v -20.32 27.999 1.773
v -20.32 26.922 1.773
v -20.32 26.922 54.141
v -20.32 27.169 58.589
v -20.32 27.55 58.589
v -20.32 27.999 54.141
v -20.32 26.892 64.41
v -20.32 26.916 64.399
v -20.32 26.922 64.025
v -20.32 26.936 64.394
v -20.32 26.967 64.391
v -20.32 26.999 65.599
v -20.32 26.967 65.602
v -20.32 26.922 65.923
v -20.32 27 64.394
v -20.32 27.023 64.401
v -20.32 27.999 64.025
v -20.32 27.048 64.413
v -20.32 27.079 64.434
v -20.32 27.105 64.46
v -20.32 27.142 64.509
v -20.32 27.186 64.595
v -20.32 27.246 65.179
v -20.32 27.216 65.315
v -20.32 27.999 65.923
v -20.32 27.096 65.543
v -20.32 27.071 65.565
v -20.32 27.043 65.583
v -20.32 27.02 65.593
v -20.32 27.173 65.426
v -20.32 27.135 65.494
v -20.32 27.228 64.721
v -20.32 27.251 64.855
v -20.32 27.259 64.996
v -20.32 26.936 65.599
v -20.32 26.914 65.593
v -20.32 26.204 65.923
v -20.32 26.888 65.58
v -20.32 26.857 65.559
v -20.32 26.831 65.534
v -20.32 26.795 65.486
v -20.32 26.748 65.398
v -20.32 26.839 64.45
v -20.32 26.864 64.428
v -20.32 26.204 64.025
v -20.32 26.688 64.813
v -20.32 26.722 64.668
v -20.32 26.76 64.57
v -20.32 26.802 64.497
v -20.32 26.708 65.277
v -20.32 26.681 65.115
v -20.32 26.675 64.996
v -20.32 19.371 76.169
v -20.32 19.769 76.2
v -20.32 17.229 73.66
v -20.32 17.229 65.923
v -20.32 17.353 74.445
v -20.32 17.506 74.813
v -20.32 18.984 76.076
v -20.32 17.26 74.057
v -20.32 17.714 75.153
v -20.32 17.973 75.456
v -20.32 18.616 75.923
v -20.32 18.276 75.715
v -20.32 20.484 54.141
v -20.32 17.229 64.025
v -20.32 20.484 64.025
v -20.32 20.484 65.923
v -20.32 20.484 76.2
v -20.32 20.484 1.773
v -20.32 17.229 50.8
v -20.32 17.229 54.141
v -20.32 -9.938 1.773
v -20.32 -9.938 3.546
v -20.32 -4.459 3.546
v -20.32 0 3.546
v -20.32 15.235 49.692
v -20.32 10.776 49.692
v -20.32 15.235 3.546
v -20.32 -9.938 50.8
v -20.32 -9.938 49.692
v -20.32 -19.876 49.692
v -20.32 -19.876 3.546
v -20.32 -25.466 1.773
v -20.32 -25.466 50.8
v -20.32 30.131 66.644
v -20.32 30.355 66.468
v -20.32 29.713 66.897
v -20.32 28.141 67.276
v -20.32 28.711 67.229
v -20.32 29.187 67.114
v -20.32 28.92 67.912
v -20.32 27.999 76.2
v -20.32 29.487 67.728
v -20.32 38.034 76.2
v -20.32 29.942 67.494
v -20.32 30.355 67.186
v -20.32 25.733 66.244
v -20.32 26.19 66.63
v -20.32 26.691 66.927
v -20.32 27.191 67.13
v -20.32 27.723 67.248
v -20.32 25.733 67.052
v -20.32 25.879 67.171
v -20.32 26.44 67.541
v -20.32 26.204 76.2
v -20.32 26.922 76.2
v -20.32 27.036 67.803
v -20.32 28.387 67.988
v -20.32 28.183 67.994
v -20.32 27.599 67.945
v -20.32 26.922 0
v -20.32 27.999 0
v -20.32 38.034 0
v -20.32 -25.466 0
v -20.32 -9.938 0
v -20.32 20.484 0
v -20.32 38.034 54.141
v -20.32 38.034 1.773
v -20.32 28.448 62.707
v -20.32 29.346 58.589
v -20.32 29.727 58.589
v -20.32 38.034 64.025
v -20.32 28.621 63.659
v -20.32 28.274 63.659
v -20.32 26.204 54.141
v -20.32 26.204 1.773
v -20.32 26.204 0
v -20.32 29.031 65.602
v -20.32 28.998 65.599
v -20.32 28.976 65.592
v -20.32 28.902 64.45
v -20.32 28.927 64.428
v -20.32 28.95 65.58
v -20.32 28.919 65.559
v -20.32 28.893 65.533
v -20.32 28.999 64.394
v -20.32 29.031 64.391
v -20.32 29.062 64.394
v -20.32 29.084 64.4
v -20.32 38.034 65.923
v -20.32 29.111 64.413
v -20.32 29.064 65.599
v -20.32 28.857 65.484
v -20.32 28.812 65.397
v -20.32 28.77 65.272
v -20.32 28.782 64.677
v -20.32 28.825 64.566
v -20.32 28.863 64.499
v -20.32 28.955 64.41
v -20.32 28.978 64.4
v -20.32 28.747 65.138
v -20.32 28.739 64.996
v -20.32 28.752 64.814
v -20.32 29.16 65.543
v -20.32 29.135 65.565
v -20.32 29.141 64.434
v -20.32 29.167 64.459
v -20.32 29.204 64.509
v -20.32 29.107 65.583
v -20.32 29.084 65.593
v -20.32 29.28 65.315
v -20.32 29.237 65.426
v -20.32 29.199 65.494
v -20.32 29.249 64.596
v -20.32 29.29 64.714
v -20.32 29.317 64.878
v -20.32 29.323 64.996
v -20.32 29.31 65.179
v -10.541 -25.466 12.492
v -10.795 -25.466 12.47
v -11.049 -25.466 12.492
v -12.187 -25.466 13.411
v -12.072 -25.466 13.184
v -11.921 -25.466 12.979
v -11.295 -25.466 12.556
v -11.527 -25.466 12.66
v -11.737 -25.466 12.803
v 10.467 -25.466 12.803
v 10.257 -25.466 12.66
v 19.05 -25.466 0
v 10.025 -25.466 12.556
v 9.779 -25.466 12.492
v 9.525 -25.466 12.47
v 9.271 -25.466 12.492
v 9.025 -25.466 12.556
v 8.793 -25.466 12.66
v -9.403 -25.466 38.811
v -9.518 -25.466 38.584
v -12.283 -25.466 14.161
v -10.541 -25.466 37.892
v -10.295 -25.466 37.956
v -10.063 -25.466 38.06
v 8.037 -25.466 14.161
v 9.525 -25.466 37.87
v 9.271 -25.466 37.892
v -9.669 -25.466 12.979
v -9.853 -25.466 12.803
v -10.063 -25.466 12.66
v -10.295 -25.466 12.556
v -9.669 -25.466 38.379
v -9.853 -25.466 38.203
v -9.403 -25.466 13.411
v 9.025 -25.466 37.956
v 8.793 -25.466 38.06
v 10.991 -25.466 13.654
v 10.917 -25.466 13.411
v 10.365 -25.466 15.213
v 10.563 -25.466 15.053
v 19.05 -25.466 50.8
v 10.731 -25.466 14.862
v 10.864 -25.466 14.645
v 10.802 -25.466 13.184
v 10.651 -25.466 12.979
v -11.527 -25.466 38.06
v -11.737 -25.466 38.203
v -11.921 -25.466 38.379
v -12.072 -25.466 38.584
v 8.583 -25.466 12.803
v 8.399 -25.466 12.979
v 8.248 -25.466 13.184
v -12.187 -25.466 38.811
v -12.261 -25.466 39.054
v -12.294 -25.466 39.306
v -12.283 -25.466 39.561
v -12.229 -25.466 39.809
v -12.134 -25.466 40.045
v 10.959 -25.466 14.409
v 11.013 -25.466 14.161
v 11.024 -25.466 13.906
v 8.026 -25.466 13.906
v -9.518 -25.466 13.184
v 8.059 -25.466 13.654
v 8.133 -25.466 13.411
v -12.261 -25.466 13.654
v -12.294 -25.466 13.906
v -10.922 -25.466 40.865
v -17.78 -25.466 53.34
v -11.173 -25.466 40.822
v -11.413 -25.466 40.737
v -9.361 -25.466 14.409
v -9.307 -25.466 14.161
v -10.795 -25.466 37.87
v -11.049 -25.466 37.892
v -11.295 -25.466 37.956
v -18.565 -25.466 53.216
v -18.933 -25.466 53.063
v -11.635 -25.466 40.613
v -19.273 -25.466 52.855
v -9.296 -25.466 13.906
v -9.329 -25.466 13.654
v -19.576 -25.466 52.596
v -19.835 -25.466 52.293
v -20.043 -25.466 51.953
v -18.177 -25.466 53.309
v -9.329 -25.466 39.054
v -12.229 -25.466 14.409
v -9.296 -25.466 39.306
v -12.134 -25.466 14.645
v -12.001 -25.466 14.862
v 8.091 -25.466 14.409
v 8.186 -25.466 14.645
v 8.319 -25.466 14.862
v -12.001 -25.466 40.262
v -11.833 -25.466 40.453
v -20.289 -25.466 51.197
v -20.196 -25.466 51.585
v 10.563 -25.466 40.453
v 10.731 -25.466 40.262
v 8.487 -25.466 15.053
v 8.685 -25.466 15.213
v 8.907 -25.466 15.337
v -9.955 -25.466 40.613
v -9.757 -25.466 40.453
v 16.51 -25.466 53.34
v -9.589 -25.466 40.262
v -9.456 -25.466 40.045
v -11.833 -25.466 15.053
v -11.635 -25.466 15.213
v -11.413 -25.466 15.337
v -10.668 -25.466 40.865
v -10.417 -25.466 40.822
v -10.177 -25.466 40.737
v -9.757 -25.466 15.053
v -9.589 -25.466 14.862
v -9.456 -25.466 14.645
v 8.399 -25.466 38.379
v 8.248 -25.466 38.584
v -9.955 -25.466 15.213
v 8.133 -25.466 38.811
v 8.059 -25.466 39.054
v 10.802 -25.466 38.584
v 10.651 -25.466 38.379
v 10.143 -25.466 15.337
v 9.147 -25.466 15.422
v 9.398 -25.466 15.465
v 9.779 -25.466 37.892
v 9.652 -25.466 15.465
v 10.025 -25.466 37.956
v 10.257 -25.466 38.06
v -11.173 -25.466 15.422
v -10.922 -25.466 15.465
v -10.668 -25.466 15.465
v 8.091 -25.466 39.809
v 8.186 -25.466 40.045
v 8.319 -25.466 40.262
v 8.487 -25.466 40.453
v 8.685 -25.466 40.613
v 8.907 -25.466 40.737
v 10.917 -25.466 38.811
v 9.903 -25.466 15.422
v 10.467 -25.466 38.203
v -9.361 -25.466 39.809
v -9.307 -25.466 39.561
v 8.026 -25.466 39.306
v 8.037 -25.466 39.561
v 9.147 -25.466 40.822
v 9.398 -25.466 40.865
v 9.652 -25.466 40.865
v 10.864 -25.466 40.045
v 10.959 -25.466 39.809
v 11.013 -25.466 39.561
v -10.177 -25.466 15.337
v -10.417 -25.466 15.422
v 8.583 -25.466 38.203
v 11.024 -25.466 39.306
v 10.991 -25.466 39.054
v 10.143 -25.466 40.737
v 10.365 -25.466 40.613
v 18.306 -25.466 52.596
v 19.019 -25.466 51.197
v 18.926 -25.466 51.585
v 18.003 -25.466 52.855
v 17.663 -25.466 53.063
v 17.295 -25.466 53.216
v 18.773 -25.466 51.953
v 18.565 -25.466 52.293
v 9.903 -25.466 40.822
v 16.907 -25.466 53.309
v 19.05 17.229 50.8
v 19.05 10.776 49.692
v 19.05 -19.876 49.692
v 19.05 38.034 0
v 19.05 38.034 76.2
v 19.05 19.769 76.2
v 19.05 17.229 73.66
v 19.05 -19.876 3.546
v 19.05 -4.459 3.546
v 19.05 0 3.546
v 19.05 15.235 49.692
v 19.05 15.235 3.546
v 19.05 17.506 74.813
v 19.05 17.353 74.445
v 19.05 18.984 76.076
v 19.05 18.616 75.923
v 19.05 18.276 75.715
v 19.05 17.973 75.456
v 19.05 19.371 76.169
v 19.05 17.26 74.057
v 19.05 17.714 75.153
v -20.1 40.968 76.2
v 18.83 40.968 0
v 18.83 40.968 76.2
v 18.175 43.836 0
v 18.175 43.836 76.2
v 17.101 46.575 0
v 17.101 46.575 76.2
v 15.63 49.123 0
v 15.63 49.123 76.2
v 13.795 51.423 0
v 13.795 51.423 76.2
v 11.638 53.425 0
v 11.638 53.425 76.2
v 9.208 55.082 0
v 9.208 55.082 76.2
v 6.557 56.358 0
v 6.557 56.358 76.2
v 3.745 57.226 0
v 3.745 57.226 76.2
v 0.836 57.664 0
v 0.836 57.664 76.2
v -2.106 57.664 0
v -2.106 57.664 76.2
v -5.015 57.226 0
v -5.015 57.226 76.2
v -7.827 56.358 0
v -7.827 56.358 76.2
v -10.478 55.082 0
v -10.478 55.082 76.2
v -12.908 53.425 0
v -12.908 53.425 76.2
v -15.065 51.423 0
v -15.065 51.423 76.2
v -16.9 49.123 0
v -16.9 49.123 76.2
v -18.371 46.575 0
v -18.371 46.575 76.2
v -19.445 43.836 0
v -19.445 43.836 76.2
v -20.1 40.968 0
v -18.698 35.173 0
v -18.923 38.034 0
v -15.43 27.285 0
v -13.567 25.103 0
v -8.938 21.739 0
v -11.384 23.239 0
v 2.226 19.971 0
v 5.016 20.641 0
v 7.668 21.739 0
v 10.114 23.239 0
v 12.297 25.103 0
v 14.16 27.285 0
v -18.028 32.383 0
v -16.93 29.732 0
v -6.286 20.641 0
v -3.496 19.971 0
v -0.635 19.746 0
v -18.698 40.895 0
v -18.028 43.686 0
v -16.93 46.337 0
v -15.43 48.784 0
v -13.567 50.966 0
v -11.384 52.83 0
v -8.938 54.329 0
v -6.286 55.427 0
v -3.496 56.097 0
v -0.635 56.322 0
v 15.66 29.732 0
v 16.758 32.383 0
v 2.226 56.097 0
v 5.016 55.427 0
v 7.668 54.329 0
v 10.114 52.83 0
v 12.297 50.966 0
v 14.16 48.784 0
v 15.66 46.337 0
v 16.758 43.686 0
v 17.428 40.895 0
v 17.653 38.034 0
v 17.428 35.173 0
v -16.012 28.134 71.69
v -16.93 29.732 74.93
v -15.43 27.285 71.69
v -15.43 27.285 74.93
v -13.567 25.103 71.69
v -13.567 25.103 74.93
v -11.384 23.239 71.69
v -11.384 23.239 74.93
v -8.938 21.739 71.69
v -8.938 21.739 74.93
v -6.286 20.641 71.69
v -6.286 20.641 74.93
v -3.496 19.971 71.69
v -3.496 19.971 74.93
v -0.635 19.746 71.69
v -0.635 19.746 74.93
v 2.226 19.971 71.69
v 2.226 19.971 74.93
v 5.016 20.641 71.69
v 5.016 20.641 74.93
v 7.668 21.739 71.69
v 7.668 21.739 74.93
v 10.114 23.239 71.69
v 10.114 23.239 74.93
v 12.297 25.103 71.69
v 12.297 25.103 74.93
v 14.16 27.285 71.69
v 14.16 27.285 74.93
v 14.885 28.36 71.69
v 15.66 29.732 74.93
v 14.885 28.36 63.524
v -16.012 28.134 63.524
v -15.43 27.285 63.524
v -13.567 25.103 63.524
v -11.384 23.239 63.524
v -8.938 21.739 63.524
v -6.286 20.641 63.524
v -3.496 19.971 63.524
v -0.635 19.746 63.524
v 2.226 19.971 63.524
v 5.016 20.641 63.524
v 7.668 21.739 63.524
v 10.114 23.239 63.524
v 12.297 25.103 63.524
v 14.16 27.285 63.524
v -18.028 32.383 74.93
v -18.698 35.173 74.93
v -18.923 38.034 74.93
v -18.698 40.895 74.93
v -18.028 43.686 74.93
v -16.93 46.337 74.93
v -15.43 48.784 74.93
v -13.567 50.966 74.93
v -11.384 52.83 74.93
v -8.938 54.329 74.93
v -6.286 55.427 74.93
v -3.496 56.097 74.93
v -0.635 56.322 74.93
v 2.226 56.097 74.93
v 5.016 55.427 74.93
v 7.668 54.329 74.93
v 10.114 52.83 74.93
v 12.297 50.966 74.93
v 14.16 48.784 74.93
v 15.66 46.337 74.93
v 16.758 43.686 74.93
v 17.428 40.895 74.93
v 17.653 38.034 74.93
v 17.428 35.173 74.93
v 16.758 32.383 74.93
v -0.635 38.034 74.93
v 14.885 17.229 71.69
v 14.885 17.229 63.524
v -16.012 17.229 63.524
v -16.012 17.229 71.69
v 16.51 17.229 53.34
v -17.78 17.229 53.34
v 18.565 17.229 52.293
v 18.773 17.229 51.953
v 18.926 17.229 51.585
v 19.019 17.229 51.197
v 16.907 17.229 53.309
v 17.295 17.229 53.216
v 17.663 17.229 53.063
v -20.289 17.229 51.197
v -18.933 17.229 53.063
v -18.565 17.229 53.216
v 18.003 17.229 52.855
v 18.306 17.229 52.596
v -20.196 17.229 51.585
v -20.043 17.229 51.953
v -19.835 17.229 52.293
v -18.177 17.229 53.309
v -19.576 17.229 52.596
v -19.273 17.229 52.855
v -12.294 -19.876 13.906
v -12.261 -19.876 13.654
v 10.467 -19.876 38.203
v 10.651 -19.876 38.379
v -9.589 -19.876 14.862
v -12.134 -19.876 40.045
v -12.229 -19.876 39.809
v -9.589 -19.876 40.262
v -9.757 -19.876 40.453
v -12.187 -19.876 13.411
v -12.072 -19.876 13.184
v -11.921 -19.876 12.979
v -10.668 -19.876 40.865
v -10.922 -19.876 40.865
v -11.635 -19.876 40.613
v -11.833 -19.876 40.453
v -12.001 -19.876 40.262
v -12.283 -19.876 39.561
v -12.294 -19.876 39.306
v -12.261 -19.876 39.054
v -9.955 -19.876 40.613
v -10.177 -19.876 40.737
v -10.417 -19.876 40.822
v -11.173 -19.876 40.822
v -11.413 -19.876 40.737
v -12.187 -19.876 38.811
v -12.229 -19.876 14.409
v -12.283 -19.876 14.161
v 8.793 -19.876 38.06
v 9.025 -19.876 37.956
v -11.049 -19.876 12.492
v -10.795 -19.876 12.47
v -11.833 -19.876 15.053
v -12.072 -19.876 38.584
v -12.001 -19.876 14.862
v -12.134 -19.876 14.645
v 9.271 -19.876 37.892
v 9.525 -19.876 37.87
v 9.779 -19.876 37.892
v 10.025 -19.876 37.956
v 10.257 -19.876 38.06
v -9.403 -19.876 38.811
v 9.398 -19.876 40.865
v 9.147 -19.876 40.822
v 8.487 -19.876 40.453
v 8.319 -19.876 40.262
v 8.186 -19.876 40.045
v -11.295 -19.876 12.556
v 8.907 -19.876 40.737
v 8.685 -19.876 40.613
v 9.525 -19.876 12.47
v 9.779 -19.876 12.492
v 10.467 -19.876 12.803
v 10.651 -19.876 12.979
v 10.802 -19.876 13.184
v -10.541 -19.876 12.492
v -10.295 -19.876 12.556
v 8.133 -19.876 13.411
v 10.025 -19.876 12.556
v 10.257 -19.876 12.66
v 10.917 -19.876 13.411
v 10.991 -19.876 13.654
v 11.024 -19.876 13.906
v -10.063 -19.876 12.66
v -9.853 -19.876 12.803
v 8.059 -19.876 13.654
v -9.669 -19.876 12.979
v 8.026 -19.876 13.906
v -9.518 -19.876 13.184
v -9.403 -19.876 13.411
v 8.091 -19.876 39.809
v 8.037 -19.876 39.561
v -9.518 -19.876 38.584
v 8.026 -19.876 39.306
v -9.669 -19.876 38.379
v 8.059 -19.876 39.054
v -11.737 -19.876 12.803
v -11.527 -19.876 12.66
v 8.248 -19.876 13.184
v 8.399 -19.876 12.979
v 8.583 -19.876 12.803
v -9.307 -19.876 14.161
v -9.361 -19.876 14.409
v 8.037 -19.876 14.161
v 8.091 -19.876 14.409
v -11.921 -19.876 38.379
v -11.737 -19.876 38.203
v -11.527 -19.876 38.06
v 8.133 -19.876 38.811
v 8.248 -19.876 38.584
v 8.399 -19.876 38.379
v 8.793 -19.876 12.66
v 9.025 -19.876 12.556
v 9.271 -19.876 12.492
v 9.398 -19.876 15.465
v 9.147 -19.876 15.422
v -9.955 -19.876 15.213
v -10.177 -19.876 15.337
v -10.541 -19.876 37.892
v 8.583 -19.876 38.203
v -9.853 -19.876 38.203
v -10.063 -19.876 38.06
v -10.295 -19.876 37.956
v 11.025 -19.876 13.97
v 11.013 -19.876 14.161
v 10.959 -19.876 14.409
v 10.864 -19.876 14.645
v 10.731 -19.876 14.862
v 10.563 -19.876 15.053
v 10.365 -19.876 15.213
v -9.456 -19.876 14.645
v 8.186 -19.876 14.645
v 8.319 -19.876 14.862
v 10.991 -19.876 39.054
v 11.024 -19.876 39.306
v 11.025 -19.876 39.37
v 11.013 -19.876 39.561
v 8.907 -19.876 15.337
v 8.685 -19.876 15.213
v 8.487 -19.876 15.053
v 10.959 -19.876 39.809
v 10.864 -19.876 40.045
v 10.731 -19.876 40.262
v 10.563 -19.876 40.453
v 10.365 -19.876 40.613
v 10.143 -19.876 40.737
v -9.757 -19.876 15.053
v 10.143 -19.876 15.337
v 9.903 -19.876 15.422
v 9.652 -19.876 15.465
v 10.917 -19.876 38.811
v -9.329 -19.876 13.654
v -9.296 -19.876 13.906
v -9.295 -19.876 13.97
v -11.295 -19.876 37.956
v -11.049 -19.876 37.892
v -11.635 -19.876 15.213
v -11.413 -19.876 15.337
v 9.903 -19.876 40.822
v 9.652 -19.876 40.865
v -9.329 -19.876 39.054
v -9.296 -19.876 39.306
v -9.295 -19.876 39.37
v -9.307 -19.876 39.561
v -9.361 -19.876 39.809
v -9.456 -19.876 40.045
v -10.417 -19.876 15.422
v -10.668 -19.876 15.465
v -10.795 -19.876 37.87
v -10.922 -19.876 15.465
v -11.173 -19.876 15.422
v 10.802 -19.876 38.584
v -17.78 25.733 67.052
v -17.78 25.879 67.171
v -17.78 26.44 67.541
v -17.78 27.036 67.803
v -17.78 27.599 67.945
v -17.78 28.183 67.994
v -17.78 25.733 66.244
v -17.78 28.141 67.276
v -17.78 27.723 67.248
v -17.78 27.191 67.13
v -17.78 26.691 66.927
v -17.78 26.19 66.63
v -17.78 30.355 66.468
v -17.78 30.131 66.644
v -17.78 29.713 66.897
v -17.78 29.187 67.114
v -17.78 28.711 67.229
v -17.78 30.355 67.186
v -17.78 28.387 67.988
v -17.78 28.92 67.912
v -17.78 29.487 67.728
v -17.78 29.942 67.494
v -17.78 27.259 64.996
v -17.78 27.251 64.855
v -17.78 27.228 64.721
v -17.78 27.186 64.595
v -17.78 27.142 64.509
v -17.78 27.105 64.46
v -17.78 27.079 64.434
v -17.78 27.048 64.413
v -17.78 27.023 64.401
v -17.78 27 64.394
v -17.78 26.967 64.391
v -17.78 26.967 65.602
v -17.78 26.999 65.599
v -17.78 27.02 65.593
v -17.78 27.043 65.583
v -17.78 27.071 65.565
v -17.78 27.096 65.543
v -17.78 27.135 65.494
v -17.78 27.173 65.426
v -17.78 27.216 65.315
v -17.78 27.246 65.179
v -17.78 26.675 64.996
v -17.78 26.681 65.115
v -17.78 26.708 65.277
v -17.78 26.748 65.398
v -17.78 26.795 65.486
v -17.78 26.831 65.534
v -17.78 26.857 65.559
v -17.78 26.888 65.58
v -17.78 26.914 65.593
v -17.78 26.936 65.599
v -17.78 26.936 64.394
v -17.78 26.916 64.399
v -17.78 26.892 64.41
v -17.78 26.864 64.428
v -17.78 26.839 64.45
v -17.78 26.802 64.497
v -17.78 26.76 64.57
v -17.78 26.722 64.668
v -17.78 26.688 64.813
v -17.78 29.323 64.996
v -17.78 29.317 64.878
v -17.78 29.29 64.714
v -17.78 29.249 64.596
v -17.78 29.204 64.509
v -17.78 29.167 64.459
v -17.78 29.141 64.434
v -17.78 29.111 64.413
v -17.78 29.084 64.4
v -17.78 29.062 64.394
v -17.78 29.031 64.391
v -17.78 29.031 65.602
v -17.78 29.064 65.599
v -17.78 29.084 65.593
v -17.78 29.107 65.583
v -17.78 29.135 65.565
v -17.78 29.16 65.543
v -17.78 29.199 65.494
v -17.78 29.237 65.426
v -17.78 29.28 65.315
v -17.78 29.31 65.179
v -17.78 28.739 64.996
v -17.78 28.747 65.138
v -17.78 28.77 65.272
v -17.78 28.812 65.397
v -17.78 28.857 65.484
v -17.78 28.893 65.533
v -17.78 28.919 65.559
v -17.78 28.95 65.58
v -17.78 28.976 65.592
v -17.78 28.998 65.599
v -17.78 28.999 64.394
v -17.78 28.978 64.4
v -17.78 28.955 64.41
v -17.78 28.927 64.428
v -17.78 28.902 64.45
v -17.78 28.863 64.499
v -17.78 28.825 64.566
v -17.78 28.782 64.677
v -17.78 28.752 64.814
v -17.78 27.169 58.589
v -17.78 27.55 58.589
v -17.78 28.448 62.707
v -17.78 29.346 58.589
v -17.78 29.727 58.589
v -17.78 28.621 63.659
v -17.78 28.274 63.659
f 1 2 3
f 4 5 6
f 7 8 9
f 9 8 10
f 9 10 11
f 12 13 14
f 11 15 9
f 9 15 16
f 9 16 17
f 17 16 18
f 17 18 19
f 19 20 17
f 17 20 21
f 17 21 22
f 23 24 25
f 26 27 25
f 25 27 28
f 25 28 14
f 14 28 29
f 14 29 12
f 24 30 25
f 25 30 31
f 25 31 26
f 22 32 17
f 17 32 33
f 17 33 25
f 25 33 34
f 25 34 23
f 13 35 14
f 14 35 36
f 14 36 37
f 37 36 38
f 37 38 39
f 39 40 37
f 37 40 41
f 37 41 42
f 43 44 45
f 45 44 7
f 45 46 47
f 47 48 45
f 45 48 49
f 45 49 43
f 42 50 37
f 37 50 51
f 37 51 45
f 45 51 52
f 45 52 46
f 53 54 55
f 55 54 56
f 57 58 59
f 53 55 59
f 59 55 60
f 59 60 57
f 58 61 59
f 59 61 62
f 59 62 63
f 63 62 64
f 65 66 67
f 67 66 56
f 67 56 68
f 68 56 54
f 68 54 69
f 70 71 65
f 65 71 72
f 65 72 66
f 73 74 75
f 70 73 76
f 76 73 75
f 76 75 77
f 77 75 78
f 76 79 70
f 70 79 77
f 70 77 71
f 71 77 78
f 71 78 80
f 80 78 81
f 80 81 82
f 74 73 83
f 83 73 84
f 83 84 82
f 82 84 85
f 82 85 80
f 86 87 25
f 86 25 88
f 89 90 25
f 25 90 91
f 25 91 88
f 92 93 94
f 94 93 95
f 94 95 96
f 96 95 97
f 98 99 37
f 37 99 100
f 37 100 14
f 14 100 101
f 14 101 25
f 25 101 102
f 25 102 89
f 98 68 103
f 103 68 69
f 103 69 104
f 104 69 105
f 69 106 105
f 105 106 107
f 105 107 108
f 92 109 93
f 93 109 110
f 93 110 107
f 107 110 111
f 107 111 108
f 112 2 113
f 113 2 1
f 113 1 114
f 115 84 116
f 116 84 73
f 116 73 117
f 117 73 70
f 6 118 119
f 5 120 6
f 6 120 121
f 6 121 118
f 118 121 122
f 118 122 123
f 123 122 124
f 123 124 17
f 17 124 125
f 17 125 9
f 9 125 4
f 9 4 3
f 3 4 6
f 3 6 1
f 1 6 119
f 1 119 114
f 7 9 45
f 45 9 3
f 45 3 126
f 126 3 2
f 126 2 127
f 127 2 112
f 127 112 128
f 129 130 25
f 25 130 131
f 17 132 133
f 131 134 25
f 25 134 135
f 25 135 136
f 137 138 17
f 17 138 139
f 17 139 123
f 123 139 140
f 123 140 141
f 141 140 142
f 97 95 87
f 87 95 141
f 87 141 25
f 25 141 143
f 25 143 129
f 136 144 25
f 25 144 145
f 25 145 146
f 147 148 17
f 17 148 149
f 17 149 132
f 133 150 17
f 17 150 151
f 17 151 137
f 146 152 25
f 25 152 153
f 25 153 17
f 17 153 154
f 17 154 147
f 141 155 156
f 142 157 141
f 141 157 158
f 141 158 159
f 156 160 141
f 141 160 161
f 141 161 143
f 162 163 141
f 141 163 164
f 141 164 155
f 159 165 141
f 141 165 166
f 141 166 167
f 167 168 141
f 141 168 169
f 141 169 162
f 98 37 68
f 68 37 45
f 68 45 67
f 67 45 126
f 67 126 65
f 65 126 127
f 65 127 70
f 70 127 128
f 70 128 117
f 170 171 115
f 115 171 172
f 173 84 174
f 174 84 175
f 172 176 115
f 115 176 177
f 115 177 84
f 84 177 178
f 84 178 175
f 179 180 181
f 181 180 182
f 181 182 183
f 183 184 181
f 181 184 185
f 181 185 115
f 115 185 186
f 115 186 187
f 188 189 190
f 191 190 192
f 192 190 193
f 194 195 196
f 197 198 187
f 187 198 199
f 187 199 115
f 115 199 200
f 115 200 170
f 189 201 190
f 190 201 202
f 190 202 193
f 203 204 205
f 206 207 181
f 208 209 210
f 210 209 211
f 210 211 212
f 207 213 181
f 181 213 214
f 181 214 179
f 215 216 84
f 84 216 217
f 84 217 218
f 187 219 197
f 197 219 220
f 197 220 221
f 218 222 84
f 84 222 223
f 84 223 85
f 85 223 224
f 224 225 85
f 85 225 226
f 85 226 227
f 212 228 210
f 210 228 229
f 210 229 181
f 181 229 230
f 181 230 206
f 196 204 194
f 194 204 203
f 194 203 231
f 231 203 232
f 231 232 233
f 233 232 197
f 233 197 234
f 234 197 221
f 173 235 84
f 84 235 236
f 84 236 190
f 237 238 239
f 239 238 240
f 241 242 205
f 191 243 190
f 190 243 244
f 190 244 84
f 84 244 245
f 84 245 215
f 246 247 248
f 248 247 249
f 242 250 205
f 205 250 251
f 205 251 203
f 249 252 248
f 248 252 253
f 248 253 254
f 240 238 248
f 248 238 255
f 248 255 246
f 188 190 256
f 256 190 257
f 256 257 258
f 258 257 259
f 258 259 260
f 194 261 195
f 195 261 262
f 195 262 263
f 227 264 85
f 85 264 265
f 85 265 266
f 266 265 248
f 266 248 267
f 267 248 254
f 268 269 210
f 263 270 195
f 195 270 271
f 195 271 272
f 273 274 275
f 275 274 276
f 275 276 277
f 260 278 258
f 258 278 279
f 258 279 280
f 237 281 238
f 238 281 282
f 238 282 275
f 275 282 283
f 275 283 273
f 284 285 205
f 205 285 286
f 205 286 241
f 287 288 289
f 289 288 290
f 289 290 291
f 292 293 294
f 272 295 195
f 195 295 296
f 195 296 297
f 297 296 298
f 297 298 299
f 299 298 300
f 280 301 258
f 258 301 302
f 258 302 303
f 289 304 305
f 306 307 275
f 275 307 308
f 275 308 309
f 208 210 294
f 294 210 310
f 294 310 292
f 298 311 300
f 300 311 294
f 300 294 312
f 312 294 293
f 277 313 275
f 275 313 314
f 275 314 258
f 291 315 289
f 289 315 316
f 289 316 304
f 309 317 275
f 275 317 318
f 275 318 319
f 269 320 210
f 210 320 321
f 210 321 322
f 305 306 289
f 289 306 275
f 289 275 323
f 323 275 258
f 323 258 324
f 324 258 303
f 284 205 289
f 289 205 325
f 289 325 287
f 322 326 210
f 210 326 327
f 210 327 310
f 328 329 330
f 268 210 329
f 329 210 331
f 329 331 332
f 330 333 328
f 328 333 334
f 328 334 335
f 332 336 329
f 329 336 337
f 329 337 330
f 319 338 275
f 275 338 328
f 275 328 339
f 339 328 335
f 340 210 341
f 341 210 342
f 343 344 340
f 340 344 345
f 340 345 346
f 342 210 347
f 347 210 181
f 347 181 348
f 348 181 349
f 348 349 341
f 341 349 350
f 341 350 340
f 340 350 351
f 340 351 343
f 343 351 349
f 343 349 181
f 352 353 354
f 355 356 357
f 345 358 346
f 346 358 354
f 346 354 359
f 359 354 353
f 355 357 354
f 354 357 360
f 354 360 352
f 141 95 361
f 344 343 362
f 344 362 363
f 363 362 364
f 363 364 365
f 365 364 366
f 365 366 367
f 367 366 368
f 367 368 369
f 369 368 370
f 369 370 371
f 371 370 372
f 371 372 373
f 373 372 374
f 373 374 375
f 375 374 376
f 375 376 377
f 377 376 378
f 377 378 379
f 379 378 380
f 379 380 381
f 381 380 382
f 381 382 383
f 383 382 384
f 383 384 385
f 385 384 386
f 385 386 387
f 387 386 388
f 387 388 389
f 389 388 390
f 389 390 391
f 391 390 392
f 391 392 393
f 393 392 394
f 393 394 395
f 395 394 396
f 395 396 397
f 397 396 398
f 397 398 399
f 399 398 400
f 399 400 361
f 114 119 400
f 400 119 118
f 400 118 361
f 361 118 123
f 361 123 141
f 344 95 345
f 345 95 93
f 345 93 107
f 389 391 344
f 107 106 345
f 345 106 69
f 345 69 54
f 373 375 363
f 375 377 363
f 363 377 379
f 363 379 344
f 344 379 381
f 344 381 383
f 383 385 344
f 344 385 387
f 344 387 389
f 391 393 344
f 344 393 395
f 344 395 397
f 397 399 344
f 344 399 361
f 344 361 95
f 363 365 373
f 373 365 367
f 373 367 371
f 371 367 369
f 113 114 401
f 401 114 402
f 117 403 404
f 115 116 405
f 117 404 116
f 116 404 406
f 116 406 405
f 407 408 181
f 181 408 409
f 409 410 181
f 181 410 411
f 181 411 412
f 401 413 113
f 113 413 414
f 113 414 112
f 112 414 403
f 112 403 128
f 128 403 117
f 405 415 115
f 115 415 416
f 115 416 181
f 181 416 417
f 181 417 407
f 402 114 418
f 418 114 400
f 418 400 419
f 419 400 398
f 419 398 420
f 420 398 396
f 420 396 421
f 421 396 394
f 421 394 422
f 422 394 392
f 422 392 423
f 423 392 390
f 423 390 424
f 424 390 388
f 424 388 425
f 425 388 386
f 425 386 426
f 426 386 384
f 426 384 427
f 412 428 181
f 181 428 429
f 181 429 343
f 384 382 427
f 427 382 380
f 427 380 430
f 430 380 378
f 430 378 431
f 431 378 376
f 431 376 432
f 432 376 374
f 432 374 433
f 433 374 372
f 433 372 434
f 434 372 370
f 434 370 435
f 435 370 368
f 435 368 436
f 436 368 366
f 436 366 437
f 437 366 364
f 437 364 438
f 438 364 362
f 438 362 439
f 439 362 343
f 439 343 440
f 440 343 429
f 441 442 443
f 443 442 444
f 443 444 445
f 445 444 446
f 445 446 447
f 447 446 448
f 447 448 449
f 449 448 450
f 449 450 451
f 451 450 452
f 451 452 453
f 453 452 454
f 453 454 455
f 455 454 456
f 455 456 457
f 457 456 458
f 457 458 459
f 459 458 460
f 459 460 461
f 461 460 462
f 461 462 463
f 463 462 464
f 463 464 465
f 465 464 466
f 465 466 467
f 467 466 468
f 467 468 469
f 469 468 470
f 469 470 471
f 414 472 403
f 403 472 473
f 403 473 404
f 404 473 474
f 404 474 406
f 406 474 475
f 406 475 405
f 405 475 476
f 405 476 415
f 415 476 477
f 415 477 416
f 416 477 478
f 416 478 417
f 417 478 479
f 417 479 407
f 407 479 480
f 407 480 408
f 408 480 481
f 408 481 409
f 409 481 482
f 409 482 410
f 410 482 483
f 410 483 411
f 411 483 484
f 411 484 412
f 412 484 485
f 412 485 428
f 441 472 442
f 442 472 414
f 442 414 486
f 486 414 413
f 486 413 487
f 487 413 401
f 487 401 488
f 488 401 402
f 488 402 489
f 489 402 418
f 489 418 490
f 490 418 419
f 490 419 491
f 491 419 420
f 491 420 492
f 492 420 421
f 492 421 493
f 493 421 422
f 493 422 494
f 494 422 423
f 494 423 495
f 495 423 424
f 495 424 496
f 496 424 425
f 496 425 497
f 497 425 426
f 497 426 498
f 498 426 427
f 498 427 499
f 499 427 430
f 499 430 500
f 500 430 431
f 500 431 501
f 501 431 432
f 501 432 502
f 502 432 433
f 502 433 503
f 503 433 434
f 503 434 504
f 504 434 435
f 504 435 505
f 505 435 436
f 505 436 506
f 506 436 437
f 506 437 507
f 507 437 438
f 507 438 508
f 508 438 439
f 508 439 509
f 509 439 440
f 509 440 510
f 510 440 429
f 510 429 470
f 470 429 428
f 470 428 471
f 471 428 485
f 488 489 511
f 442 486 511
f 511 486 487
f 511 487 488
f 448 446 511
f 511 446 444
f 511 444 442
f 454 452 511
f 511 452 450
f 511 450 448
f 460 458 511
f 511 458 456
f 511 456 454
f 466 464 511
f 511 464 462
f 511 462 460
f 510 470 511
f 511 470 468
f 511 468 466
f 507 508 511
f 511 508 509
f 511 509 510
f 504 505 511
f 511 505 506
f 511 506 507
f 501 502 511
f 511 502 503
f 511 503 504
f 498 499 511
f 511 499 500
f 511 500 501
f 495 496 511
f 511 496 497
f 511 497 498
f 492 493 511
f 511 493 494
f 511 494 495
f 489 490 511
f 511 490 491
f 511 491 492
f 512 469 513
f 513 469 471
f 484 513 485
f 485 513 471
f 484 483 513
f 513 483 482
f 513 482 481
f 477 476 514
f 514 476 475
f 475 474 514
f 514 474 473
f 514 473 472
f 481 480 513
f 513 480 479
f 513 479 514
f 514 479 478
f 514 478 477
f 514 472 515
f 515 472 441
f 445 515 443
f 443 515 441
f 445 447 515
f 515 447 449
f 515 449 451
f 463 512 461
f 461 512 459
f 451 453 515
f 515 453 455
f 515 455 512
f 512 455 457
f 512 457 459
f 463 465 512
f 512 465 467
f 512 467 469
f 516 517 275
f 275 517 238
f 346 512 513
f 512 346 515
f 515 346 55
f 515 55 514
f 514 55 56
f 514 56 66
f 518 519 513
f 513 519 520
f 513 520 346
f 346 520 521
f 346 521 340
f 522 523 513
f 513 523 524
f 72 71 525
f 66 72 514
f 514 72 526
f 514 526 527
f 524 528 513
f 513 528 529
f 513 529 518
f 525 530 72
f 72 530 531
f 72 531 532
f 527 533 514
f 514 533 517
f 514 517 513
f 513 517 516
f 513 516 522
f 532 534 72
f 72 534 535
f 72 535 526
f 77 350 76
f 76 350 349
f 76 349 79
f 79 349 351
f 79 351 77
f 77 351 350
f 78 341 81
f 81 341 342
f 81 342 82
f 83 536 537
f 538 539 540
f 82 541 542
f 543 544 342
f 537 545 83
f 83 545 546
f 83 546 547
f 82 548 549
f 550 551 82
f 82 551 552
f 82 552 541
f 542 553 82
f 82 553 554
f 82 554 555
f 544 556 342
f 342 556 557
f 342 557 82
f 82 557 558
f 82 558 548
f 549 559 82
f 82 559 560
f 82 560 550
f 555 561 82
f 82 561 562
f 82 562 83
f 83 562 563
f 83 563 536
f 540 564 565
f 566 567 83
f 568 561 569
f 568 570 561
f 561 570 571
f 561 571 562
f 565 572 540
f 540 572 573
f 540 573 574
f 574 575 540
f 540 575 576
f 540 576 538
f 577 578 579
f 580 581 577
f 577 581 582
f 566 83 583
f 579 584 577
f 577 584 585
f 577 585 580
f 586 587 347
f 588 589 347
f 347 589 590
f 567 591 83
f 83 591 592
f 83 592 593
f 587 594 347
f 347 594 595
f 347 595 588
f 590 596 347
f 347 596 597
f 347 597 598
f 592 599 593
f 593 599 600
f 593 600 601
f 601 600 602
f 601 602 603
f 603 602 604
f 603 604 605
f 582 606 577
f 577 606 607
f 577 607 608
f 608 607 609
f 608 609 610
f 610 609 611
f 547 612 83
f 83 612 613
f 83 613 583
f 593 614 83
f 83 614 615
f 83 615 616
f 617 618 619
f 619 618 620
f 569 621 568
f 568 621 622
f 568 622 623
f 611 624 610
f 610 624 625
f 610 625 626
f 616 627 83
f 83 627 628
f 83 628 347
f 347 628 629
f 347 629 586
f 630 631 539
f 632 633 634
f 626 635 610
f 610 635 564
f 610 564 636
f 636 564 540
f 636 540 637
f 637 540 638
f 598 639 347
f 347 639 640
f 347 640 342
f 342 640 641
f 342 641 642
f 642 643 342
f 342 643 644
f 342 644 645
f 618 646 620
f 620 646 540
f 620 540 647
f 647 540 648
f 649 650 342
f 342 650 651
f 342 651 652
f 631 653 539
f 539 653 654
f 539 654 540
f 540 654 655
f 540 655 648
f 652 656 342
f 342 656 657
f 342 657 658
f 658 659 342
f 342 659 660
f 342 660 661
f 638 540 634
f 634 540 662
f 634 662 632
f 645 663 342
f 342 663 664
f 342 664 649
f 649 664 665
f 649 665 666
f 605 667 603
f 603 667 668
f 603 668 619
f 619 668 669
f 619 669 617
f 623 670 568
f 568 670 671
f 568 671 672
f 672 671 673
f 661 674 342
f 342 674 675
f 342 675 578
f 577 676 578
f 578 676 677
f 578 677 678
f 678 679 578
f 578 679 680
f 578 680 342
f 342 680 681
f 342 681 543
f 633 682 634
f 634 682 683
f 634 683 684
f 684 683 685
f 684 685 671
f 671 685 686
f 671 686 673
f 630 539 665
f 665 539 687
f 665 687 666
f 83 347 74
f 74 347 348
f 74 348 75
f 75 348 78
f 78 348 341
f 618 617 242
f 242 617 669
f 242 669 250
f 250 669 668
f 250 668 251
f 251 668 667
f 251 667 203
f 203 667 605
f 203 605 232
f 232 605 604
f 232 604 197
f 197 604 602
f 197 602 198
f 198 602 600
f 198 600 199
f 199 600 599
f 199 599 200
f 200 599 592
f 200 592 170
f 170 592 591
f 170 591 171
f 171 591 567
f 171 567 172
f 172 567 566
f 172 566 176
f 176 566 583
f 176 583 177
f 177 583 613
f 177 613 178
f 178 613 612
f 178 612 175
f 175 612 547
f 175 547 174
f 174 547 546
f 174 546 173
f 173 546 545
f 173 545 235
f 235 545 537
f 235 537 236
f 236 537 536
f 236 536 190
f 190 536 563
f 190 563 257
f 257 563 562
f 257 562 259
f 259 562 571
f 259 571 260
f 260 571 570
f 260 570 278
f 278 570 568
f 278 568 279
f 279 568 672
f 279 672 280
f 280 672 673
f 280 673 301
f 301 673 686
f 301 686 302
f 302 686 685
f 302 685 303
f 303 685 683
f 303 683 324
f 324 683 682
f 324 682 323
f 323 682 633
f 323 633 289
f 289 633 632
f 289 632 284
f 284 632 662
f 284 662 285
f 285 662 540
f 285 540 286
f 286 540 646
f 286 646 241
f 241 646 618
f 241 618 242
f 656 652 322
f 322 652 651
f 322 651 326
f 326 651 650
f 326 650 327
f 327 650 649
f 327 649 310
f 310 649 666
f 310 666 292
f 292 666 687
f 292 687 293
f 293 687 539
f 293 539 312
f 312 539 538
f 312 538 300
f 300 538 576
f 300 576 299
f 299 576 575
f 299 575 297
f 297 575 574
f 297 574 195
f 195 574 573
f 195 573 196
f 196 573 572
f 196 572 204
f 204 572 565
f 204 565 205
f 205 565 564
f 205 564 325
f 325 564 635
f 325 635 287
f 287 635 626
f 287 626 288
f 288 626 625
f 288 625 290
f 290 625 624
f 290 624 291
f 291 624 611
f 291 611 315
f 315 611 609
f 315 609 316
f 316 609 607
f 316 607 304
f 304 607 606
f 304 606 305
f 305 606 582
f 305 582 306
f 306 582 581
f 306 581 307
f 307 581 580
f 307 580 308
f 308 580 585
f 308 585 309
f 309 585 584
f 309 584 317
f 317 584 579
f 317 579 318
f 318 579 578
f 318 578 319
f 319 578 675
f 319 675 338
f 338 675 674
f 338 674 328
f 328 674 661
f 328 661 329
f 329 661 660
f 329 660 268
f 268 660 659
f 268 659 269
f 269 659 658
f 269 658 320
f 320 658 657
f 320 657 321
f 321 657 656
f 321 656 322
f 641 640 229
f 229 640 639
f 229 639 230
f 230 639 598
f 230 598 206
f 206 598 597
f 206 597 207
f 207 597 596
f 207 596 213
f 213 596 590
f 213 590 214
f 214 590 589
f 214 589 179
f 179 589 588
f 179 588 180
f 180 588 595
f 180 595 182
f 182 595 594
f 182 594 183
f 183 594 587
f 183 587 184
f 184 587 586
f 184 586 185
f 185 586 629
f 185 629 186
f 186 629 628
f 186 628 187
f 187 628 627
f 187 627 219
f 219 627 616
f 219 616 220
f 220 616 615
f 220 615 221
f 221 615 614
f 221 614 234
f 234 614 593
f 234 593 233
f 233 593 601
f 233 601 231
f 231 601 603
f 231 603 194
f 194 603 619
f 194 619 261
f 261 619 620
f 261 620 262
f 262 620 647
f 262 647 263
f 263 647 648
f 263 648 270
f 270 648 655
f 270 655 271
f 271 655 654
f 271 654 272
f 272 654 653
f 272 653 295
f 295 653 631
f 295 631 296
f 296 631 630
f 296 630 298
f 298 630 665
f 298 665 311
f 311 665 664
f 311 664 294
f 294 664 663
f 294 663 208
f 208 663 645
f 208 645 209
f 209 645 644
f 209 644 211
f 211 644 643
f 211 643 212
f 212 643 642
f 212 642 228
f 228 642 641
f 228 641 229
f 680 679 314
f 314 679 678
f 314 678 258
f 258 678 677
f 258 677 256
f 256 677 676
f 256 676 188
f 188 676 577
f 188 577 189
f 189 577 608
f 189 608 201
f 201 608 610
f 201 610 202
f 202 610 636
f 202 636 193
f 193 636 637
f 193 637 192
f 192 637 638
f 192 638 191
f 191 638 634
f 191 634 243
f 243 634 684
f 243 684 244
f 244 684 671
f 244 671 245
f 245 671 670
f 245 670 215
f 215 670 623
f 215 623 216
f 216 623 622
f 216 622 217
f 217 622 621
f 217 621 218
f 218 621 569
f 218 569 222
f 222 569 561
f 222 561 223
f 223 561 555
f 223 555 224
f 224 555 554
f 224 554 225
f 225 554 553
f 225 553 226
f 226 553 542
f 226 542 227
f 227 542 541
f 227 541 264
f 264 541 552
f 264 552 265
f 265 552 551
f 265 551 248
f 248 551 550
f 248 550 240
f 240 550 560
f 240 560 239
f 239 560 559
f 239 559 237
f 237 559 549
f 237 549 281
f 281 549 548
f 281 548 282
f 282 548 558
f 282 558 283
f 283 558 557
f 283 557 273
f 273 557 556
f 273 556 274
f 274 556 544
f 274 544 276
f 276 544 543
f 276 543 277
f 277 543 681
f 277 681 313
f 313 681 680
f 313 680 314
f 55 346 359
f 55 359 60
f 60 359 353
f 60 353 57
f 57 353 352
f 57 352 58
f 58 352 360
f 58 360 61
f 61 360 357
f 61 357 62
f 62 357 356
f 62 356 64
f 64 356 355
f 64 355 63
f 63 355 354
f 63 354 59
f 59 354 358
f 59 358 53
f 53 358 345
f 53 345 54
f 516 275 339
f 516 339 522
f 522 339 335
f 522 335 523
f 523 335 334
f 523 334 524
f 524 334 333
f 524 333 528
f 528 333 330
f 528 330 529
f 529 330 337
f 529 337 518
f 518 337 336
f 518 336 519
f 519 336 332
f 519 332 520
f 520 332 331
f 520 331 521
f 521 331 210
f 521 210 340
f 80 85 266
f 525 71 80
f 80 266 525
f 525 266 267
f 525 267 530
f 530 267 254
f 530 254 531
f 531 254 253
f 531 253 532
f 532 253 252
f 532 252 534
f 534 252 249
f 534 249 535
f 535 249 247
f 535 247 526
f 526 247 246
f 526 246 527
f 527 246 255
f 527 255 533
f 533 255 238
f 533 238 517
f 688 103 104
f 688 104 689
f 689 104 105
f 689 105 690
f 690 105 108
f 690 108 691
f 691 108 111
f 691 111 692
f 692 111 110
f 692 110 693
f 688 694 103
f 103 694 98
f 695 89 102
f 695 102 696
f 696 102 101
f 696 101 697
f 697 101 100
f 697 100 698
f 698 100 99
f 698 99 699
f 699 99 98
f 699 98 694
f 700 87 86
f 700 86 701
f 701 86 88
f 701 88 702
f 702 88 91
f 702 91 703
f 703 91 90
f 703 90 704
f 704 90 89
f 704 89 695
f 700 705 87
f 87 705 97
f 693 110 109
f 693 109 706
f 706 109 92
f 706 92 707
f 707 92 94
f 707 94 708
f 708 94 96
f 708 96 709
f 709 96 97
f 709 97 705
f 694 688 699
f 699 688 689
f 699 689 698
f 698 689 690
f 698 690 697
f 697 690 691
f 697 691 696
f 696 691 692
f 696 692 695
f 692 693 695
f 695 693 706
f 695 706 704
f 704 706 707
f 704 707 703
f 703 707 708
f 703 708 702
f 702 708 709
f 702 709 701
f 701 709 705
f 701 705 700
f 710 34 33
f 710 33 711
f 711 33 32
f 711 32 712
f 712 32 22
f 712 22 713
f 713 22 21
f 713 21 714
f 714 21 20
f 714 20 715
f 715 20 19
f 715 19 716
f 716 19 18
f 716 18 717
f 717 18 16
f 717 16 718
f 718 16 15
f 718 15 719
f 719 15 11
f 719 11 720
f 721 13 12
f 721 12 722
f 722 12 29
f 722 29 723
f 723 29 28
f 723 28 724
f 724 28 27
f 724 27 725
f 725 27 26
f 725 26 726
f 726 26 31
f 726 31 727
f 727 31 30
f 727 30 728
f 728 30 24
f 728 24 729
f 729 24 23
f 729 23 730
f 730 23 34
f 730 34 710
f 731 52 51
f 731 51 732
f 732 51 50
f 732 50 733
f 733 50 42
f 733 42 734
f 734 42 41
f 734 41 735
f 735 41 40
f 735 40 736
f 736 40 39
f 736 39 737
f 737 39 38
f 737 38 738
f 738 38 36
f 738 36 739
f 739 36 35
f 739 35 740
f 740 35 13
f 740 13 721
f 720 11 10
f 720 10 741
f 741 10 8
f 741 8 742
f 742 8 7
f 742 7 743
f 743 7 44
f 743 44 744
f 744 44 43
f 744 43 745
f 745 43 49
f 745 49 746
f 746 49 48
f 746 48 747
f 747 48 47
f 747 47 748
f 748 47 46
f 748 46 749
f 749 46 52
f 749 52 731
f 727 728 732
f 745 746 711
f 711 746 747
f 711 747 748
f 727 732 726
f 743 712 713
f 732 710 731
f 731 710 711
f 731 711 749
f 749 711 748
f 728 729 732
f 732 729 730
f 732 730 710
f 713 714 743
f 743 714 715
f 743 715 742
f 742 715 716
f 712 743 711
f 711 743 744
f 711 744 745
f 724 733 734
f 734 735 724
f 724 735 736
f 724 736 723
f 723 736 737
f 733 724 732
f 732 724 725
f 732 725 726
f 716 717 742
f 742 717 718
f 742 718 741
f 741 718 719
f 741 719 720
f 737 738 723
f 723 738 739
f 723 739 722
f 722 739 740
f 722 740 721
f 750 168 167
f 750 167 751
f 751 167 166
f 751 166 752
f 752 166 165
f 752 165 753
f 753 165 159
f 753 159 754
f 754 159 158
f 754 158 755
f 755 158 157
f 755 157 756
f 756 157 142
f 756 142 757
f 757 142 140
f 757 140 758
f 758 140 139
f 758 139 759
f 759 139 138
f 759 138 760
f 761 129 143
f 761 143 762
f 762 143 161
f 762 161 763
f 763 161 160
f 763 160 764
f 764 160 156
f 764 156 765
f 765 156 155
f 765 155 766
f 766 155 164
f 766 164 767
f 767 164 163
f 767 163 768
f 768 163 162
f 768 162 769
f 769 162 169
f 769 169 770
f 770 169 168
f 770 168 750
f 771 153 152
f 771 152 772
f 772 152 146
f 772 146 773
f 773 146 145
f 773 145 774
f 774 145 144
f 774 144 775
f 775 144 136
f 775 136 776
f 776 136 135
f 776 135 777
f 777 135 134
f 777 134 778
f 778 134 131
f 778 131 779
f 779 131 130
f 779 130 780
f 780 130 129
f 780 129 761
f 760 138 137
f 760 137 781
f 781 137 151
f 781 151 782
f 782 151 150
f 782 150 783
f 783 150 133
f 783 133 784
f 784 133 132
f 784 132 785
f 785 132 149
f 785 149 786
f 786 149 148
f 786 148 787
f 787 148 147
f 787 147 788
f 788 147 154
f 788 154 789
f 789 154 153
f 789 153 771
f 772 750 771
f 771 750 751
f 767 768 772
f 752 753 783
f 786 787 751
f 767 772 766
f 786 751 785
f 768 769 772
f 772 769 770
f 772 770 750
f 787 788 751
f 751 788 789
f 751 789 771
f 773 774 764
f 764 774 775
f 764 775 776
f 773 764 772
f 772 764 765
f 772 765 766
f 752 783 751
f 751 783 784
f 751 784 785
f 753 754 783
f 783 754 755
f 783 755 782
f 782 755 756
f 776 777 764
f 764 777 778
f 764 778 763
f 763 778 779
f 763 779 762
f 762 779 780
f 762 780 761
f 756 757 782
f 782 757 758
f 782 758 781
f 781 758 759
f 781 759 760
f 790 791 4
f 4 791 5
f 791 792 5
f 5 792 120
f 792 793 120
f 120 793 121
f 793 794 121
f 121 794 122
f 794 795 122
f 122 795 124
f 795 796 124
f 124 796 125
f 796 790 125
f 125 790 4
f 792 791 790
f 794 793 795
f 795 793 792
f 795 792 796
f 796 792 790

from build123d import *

# Parameters (mm, degrees)
BOSS_EXTRUDE1_DEPTH = 76.2
SKETCH2_R           = 18.288
CUT_EXTRUDE1_DEPTH  = 74.93
SKETCH3_W           = 30.896743612
SKETCH3_H           = 8.166199328
CUT_EXTRUDE2_DEPTH  = 55.372
SKETCH5_W           = 22.86
SKETCH5_H           = 42.694539366
CUT_EXTRUDE4_DEPTH  = 55.372
CUT_EXTRUDE5_DEPTH  = 55.372
SKETCH7_R           = 1.5
CUT_EXTRUDE6_DEPTH  = 7.62
FILLET1_R           = 2.54
FILLET2_R           = 2.54
CUT_EXTRUDE7_DEPTH  = 2.54


with BuildPart() as part:
    # Sketch1 → Boss-Extrude1 (new body)
    with BuildSketch(Plane.XY):
        with BuildLine():
            Line((19.05, 38.034196891), (19.05, -25.465803109))
            Line((19.05, -25.465803109), (-20.32, -25.465803109))
            Line((-20.32, -25.465803109), (-20.32, 38.034196891))
            ThreePointArc((-20.32, 38.034196891), (-0.635, 57.719196891), (19.05, 38.034196891))
        make_face()
    extrude(amount=BOSS_EXTRUDE1_DEPTH)

    # Sketch2 → Cut-Extrude1 (cut)
    with BuildSketch(Plane(origin=(0, 0, 0), x_dir=(-1, 0, 0), z_dir=(0, 0, -1))):
        with Locations((0.635, 38.034196891)):
            Circle(SKETCH2_R)
    extrude(amount=-CUT_EXTRUDE1_DEPTH, mode=Mode.SUBTRACT)

    # Sketch3 → Cut-Extrude2 (cut)
    with BuildSketch(Plane.XZ.offset(25.465803109)):
        with Locations((-0.563393949, 67.607273916)):
            Rectangle(SKETCH3_W, SKETCH3_H)
    extrude(amount=-CUT_EXTRUDE2_DEPTH, mode=Mode.SUBTRACT)

    # Sketch5 → Cut-Extrude4 (cut)
    with BuildSketch(Plane.ZY.offset(20.32)):
        with Locations((64.77, -4.118533426)):
            Rectangle(SKETCH5_W, SKETCH5_H)
    extrude(amount=-CUT_EXTRUDE4_DEPTH, mode=Mode.SUBTRACT)

    # Sketch6 → Cut-Extrude5 (cut)
    with BuildSketch(Plane.ZY.offset(20.32)):
        Polygon((49.692334338, 15.234978865), (3.545926494, 15.234978865), (3.545926494, 0), align=None)
        Polygon((49.692334338, 10.776388735), (3.545926494, -4.45859013), (3.545926494, -19.876418407), (49.692334338, -19.876418407), align=None)
    extrude(amount=-CUT_EXTRUDE5_DEPTH, mode=Mode.SUBTRACT)

    # Sketch7 → Cut-Extrude6 (cut)
    with BuildSketch(Plane(origin=(0, -25.465803109, 0), x_dir=(-1, 0, 0), z_dir=(0, -1, 0))):
        with Locations((10.795, -13.97)):
            Circle(SKETCH7_R)
        with Locations((10.795, -39.37)):
            Circle(SKETCH7_R)
        with Locations((-9.525, -13.97)):
            Circle(SKETCH7_R)
        with Locations((-9.525, -39.37)):
            Circle(SKETCH7_R)
    extrude(amount=-CUT_EXTRUDE6_DEPTH, mode=Mode.SUBTRACT)

    # Fillet1
    fillet1_edges = [part.edges().sort_by_distance(p)[0] for p in [
        (-0.635, 17.228736257, 76.2),
    ]]
    fillet(fillet1_edges, radius=FILLET1_R)

    # Fillet2
    fillet2_edges = [part.edges().sort_by_distance(p)[0] for p in [
        (19.05, -4.118533426, 53.34),
        (-20.32, -4.118533426, 53.34),
    ]]
    fillet(fillet2_edges, radius=FILLET2_R)

    # Sketch8 → Cut-Extrude7 (cut)
    with BuildSketch(Plane.ZY.offset(20.32)):
        Polygon((58.58873891, 27.55033505), (62.707128333, 28.447770947), (58.58873891, 29.345907966), (58.58873891, 29.726617101), (63.65925173, 28.62094803), (63.65925173, 28.273892742), (58.58873891, 27.168924793), align=None)
        with BuildLine():
            add(Edge.make_bspline(
                [(64.996431217, 29.322770947), (65.036672351, 29.321620871), (65.114658498, 29.319392057), (65.227191282, 29.304382374), (65.330482027, 29.277639856), (65.409194262, 29.246710575), (65.46543075, 29.217287823), (65.501792779, 29.194596329), (65.532480318, 29.170293168), (65.558238335, 29.145481874), (65.577165676, 29.118219683), (65.591788765, 29.090652513), (65.600610557, 29.061314813), (65.601668573, 29.041210781), (65.602200448, 29.03110428)],
                knots=[0, 0, 0, 0, 1.990507798, 3.857546318, 5.601569732, 7.256660921, 8.027130436, 8.73909373, 9.372800607, 9.961351037, 10.500235976, 11.006911429, 11.500764338, 12, 12, 12, 12], degree=3))
            add(Edge.make_bspline(
                [(65.602200448, 29.03110428), (65.601668573, 29.02099778), (65.600610557, 29.000893748), (65.591788765, 28.971556048), (65.577165676, 28.943988878), (65.558238335, 28.916726687), (65.532480318, 28.891915393), (65.501792779, 28.867612232), (65.46543075, 28.844920738), (65.409194262, 28.815497986), (65.330482027, 28.784568705), (65.227191282, 28.757826187), (65.114658498, 28.742816503), (65.036672351, 28.74058769), (64.996431217, 28.739437614)],
                knots=[0, 0, 0, 0, 0.499235662, 0.993088571, 1.499764024, 2.038648963, 2.627199393, 3.26090627, 3.972869564, 4.743339079, 6.398430268, 8.142453682, 10.009492202, 12, 12, 12, 12], degree=3))
            add(Edge.make_bspline(
                [(64.996431217, 28.739437614), (64.956190084, 28.74058769), (64.878203937, 28.742816503), (64.765671153, 28.757826187), (64.662380408, 28.784568705), (64.583668173, 28.815497986), (64.527431685, 28.844920738), (64.491069656, 28.867612232), (64.460382117, 28.891915393), (64.4346241, 28.916726687), (64.415696759, 28.943988878), (64.401073669, 28.971556048), (64.392251878, 29.000893748), (64.391193862, 29.02099778), (64.390661987, 29.03110428)],
                knots=[0, 0, 0, 0, 1.990507798, 3.857546318, 5.601569732, 7.256660921, 8.027130436, 8.73909373, 9.372800607, 9.961351037, 10.500235976, 11.006911429, 11.500764338, 12, 12, 12, 12], degree=3))
            add(Edge.make_bspline(
                [(64.390661987, 29.03110428), (64.391186666, 29.040981967), (64.392230692, 29.060636942), (64.401235197, 29.089432768), (64.415680324, 29.116822155), (64.434629148, 29.144078002), (64.460380267, 29.168892275), (64.491071648, 29.193190012), (64.52742486, 29.215902902), (64.583786055, 29.245244148), (64.662185902, 29.277227081), (64.765764853, 29.303386129), (64.878127586, 29.319664025), (64.956175178, 29.321713732), (64.996431217, 29.322770947)],
                knots=[0, 0, 0, 0, 0.488404753, 0.971845354, 1.47922561, 2.018860156, 2.608229279, 3.242817664, 3.955771323, 4.727312586, 6.389026247, 8.135475657, 10.006723338, 12, 12, 12, 12], degree=3))
        make_face()
        with BuildLine():
            add(Edge.make_bspline(
                [(64.996431217, 27.258668383), (65.036672351, 27.257518307), (65.114658498, 27.255289493), (65.227191282, 27.24027981), (65.330482027, 27.213537292), (65.409194262, 27.182608011), (65.46543075, 27.153185259), (65.501792779, 27.130493765), (65.532480318, 27.106190604), (65.558238335, 27.08137931), (65.577165676, 27.054117119), (65.591788765, 27.026549949), (65.600610557, 26.997212248), (65.601668573, 26.977108216), (65.602200448, 26.967001716)],
                knots=[0, 0, 0, 0, 1.990507798, 3.857546318, 5.601569732, 7.256660921, 8.027130436, 8.73909373, 9.372800607, 9.961351037, 10.500235976, 11.006911429, 11.500764338, 12, 12, 12, 12], degree=3))
            add(Edge.make_bspline(
                [(65.602200448, 26.967001716), (65.601675763, 26.957124042), (65.600631725, 26.937469089), (65.59162731, 26.908673091), (65.577181819, 26.881284401), (65.558234499, 26.854025675), (65.532477027, 26.829223563), (65.501812643, 26.804874143), (65.465247899, 26.782328727), (65.409537026, 26.751692384), (65.330402294, 26.721274107), (65.227153238, 26.694597501), (65.114719446, 26.678475837), (65.036682016, 26.676403788), (64.996431217, 26.67533505)],
                knots=[0, 0, 0, 0, 0.48835869, 0.971753697, 1.4790861, 2.018669752, 2.607983289, 3.242511825, 3.955398243, 4.732318271, 6.389555434, 8.135840131, 10.00691133, 12, 12, 12, 12], degree=3))
            add(Edge.make_bspline(
                [(64.996431217, 26.67533505), (64.956180419, 26.676403788), (64.878142989, 26.678475837), (64.765709197, 26.694597501), (64.662460141, 26.721274107), (64.583325409, 26.751692384), (64.527614536, 26.782328727), (64.491049792, 26.804874143), (64.460385408, 26.829223563), (64.434627936, 26.854025675), (64.415680616, 26.881284401), (64.401235125, 26.908673091), (64.39223071, 26.937469089), (64.391186672, 26.957124042), (64.390661987, 26.967001716)],
                knots=[0, 0, 0, 0, 1.99308867, 3.864159869, 5.610444566, 7.267681729, 8.044601757, 8.757488175, 9.392016711, 9.981330248, 10.5209139, 11.028246303, 11.51164131, 12, 12, 12, 12], degree=3))
            add(Edge.make_bspline(
                [(64.390661987, 26.967001716), (64.391193862, 26.977108216), (64.392251878, 26.997212248), (64.401073669, 27.026549949), (64.415696759, 27.054117119), (64.4346241, 27.08137931), (64.460382117, 27.106190604), (64.491069656, 27.130493765), (64.527431685, 27.153185259), (64.583668173, 27.182608011), (64.662380408, 27.213537292), (64.765671153, 27.24027981), (64.878203937, 27.255289493), (64.956190084, 27.257518307), (64.996431217, 27.258668383)],
                knots=[0, 0, 0, 0, 0.499235662, 0.993088571, 1.499764024, 2.038648963, 2.627199393, 3.26090627, 3.972869564, 4.743339079, 6.398430268, 8.142453682, 10.009492202, 12, 12, 12, 12], degree=3))
        make_face()
        with BuildLine():
            Line((67.051559423, 25.733027357), (66.243867115, 25.733027357))
            add(Edge.make_bspline(
                [(66.243867115, 25.733027357), (66.28260692, 25.772843106), (66.360174226, 25.852564736), (66.468966307, 25.97888666), (66.572347001, 26.109648304), (66.67019798, 26.244993717), (66.76091061, 26.385954161), (66.846362199, 26.531412433), (66.924350458, 26.682284456), (66.997421295, 26.836864373), (67.0632652, 26.994582281), (67.120200869, 27.154651777), (67.167701253, 27.316032688), (67.207224728, 27.478605836), (67.238213655, 27.642389926), (67.259589839, 27.807443651), (67.273735474, 27.973564747), (67.275188403, 28.084794525), (67.275918397, 28.140679601)],
                knots=[0, 0, 0, 0, 0.992342649, 1.98693169, 2.976855543, 3.969988518, 4.969517551, 5.970693636, 6.982945216, 8.002815687, 9.02486352, 10.035184142, 11.036656235, 12.029148216, 13.02335152, 14.013108037, 15.001727688, 16, 16, 16, 16], degree=3))
            add(Edge.make_bspline(
                [(67.275918397, 28.140679601), (67.275184901, 28.192343133), (67.27372325, 28.295294032), (67.263801037, 28.44878426), (67.246973124, 28.600860245), (67.222920671, 28.751444462), (67.193020341, 28.901036666), (67.155654129, 29.048791927), (67.112174699, 29.195317294), (67.061617766, 29.339705541), (67.006070574, 29.481699791), (66.944044099, 29.619275823), (66.87721261, 29.752732906), (66.806301921, 29.882246985), (66.729139051, 30.006769884), (66.648009526, 30.127575587), (66.561360678, 30.244023811), (66.499211501, 30.317960149), (66.468226089, 30.354822229)],
                knots=[0, 0, 0, 0, 1.030615892, 2.053727828, 3.066966151, 4.081801417, 5.094889563, 6.109178507, 7.121085909, 8.142879786, 9.160153843, 10.161827701, 11.152208124, 12.13713053, 13.106268419, 14.073498001, 15.03951329, 16, 16, 16, 16], degree=3))
            Line((66.468226089, 30.354822229), (67.186174807, 30.354822229))
            add(Edge.make_bspline(
                [(67.186174807, 30.354822229), (67.216874753, 30.319332363), (67.278313081, 30.248308195), (67.365007427, 30.136608354), (67.444835657, 30.019171184), (67.522194874, 29.898457723), (67.593126071, 29.772205249), (67.660248359, 29.641773165), (67.720879773, 29.505913751), (67.777568925, 29.366424056), (67.828739811, 29.223868209), (67.873051444, 29.079290549), (67.909800157, 28.933390224), (67.941592089, 28.786255648), (67.963633891, 28.637172897), (67.98205547, 28.48695015), (67.991590785, 28.33524909), (67.993106473, 28.233705926), (67.993867115, 28.182746909)],
                knots=[0, 0, 0, 0, 0.951172047, 1.903534998, 2.864157892, 3.828872604, 4.809039982, 5.798517374, 6.801478967, 7.823757442, 8.850242752, 9.870807247, 10.887714424, 11.899576751, 12.920723883, 13.941464303, 14.966932353, 16, 16, 16, 16], degree=3))
            add(Edge.make_bspline(
                [(67.993867115, 28.182746909), (67.993320557, 28.127802038), (67.992230776, 28.018247462), (67.979500696, 27.854750164), (67.960602263, 27.692433158), (67.935061158, 27.530830321), (67.900126876, 27.370310002), (67.859101093, 27.210379802), (67.809895139, 27.051761284), (67.752895083, 26.894698646), (67.689344878, 26.739587526), (67.619078904, 26.586642874), (67.541299534, 26.437089331), (67.456857335, 26.29034603), (67.366560774, 26.146022013), (67.26796876, 26.005539052), (67.163825129, 25.866798877), (67.089134493, 25.777800373), (67.051559423, 25.733027357)],
                knots=[0, 0, 0, 0, 0.983526716, 1.961053866, 2.934201006, 3.908957034, 4.888845537, 5.874284043, 6.864251573, 7.860925746, 8.864846135, 9.864607242, 10.873329523, 11.881739335, 12.895214845, 13.920156785, 14.953680705, 16, 16, 16, 16], degree=3))
        make_face()
    extrude(amount=-CUT_EXTRUDE7_DEPTH, mode=Mode.SUBTRACT)


solid = part.part
